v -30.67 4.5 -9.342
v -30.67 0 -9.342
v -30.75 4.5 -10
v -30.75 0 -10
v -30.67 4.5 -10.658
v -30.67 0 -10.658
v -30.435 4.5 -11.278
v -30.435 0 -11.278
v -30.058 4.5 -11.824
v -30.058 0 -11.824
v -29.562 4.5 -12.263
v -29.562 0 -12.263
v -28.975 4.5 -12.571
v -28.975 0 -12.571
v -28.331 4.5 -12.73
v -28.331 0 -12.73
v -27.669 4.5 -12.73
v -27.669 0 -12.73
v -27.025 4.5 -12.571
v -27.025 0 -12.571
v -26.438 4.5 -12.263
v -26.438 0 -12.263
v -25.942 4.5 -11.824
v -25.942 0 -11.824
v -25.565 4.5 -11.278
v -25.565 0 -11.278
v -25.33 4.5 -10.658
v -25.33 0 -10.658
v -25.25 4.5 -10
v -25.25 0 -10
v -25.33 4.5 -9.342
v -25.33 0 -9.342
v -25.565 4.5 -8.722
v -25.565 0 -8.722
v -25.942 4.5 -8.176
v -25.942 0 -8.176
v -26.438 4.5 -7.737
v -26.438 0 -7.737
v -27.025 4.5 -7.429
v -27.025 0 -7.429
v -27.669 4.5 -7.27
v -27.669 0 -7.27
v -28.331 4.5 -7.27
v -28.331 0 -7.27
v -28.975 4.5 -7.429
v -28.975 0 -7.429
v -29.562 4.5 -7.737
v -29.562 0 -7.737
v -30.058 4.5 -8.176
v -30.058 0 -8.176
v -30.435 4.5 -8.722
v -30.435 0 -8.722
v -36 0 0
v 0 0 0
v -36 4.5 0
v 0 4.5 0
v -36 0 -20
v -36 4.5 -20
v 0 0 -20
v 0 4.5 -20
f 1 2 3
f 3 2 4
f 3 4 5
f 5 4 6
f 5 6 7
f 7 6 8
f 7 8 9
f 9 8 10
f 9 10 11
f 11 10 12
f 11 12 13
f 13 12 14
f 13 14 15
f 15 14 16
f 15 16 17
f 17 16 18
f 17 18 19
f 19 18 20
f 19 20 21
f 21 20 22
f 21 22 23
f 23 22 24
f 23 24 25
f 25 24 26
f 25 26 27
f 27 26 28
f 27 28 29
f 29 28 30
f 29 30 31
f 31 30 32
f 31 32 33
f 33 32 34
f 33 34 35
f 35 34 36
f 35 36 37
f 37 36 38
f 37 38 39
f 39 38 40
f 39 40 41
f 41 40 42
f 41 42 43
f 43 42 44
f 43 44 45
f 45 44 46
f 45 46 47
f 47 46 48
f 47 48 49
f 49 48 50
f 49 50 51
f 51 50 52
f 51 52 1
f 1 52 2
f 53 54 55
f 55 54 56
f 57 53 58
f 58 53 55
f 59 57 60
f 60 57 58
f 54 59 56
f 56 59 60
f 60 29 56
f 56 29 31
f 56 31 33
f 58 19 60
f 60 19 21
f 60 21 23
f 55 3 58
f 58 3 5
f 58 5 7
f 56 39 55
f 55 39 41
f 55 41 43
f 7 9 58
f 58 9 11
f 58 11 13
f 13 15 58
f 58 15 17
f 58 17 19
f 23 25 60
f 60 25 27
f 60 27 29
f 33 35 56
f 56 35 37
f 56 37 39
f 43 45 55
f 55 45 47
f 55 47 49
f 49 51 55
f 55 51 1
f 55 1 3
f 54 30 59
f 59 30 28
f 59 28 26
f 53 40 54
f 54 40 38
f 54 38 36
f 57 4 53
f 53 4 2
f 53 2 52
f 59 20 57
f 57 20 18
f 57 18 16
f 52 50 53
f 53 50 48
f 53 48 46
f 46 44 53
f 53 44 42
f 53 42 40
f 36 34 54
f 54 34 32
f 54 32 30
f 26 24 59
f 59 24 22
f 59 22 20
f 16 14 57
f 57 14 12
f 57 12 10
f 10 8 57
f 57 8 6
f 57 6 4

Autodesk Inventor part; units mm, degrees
ref_plane "YZ Plane" through (0, 0, 0) normal (1, 0, 0) x (0, 1, 0)
ref_plane "XZ Plane" through (0, 0, 0) normal (0, 1, 0) x (-1, 0, 0)
ref_plane "XY Plane" through (0, 0, 0) normal (0, 0, 1) x (1, 0, 0)
sketch "Sketch1" plane through (0, 0, 0) normal (0, 1, 0) x (-1, 0, 0)
  line L0 (0, 0) -> (36, 0)
  line L1 (36, 0) -> (36, -20)
  line L2 (36, -20) -> (0, -20)
  line L3 (0, -20) -> (0, 0)
  line L4 (36, -20) -> (28, -20)
  line L5 (0, -20) -> (8, -20)
  line L6 (28, -20) -> (28, 0)
  circle A0 centre (28, -10) radius 2.75
  dimension "d0" = 36
  dimension "d1" = 20
  dimension "d2" = 8
  dimension "d3" = 8
  dimension "d4" = 5.5
extrude "Extrusion1" add sketch "Sketch1" along normal blind 4.5 contours L0 L6 A0 L2 L3 | L0 L1 L2 L6 A0
properties part number "cable_retainer"
